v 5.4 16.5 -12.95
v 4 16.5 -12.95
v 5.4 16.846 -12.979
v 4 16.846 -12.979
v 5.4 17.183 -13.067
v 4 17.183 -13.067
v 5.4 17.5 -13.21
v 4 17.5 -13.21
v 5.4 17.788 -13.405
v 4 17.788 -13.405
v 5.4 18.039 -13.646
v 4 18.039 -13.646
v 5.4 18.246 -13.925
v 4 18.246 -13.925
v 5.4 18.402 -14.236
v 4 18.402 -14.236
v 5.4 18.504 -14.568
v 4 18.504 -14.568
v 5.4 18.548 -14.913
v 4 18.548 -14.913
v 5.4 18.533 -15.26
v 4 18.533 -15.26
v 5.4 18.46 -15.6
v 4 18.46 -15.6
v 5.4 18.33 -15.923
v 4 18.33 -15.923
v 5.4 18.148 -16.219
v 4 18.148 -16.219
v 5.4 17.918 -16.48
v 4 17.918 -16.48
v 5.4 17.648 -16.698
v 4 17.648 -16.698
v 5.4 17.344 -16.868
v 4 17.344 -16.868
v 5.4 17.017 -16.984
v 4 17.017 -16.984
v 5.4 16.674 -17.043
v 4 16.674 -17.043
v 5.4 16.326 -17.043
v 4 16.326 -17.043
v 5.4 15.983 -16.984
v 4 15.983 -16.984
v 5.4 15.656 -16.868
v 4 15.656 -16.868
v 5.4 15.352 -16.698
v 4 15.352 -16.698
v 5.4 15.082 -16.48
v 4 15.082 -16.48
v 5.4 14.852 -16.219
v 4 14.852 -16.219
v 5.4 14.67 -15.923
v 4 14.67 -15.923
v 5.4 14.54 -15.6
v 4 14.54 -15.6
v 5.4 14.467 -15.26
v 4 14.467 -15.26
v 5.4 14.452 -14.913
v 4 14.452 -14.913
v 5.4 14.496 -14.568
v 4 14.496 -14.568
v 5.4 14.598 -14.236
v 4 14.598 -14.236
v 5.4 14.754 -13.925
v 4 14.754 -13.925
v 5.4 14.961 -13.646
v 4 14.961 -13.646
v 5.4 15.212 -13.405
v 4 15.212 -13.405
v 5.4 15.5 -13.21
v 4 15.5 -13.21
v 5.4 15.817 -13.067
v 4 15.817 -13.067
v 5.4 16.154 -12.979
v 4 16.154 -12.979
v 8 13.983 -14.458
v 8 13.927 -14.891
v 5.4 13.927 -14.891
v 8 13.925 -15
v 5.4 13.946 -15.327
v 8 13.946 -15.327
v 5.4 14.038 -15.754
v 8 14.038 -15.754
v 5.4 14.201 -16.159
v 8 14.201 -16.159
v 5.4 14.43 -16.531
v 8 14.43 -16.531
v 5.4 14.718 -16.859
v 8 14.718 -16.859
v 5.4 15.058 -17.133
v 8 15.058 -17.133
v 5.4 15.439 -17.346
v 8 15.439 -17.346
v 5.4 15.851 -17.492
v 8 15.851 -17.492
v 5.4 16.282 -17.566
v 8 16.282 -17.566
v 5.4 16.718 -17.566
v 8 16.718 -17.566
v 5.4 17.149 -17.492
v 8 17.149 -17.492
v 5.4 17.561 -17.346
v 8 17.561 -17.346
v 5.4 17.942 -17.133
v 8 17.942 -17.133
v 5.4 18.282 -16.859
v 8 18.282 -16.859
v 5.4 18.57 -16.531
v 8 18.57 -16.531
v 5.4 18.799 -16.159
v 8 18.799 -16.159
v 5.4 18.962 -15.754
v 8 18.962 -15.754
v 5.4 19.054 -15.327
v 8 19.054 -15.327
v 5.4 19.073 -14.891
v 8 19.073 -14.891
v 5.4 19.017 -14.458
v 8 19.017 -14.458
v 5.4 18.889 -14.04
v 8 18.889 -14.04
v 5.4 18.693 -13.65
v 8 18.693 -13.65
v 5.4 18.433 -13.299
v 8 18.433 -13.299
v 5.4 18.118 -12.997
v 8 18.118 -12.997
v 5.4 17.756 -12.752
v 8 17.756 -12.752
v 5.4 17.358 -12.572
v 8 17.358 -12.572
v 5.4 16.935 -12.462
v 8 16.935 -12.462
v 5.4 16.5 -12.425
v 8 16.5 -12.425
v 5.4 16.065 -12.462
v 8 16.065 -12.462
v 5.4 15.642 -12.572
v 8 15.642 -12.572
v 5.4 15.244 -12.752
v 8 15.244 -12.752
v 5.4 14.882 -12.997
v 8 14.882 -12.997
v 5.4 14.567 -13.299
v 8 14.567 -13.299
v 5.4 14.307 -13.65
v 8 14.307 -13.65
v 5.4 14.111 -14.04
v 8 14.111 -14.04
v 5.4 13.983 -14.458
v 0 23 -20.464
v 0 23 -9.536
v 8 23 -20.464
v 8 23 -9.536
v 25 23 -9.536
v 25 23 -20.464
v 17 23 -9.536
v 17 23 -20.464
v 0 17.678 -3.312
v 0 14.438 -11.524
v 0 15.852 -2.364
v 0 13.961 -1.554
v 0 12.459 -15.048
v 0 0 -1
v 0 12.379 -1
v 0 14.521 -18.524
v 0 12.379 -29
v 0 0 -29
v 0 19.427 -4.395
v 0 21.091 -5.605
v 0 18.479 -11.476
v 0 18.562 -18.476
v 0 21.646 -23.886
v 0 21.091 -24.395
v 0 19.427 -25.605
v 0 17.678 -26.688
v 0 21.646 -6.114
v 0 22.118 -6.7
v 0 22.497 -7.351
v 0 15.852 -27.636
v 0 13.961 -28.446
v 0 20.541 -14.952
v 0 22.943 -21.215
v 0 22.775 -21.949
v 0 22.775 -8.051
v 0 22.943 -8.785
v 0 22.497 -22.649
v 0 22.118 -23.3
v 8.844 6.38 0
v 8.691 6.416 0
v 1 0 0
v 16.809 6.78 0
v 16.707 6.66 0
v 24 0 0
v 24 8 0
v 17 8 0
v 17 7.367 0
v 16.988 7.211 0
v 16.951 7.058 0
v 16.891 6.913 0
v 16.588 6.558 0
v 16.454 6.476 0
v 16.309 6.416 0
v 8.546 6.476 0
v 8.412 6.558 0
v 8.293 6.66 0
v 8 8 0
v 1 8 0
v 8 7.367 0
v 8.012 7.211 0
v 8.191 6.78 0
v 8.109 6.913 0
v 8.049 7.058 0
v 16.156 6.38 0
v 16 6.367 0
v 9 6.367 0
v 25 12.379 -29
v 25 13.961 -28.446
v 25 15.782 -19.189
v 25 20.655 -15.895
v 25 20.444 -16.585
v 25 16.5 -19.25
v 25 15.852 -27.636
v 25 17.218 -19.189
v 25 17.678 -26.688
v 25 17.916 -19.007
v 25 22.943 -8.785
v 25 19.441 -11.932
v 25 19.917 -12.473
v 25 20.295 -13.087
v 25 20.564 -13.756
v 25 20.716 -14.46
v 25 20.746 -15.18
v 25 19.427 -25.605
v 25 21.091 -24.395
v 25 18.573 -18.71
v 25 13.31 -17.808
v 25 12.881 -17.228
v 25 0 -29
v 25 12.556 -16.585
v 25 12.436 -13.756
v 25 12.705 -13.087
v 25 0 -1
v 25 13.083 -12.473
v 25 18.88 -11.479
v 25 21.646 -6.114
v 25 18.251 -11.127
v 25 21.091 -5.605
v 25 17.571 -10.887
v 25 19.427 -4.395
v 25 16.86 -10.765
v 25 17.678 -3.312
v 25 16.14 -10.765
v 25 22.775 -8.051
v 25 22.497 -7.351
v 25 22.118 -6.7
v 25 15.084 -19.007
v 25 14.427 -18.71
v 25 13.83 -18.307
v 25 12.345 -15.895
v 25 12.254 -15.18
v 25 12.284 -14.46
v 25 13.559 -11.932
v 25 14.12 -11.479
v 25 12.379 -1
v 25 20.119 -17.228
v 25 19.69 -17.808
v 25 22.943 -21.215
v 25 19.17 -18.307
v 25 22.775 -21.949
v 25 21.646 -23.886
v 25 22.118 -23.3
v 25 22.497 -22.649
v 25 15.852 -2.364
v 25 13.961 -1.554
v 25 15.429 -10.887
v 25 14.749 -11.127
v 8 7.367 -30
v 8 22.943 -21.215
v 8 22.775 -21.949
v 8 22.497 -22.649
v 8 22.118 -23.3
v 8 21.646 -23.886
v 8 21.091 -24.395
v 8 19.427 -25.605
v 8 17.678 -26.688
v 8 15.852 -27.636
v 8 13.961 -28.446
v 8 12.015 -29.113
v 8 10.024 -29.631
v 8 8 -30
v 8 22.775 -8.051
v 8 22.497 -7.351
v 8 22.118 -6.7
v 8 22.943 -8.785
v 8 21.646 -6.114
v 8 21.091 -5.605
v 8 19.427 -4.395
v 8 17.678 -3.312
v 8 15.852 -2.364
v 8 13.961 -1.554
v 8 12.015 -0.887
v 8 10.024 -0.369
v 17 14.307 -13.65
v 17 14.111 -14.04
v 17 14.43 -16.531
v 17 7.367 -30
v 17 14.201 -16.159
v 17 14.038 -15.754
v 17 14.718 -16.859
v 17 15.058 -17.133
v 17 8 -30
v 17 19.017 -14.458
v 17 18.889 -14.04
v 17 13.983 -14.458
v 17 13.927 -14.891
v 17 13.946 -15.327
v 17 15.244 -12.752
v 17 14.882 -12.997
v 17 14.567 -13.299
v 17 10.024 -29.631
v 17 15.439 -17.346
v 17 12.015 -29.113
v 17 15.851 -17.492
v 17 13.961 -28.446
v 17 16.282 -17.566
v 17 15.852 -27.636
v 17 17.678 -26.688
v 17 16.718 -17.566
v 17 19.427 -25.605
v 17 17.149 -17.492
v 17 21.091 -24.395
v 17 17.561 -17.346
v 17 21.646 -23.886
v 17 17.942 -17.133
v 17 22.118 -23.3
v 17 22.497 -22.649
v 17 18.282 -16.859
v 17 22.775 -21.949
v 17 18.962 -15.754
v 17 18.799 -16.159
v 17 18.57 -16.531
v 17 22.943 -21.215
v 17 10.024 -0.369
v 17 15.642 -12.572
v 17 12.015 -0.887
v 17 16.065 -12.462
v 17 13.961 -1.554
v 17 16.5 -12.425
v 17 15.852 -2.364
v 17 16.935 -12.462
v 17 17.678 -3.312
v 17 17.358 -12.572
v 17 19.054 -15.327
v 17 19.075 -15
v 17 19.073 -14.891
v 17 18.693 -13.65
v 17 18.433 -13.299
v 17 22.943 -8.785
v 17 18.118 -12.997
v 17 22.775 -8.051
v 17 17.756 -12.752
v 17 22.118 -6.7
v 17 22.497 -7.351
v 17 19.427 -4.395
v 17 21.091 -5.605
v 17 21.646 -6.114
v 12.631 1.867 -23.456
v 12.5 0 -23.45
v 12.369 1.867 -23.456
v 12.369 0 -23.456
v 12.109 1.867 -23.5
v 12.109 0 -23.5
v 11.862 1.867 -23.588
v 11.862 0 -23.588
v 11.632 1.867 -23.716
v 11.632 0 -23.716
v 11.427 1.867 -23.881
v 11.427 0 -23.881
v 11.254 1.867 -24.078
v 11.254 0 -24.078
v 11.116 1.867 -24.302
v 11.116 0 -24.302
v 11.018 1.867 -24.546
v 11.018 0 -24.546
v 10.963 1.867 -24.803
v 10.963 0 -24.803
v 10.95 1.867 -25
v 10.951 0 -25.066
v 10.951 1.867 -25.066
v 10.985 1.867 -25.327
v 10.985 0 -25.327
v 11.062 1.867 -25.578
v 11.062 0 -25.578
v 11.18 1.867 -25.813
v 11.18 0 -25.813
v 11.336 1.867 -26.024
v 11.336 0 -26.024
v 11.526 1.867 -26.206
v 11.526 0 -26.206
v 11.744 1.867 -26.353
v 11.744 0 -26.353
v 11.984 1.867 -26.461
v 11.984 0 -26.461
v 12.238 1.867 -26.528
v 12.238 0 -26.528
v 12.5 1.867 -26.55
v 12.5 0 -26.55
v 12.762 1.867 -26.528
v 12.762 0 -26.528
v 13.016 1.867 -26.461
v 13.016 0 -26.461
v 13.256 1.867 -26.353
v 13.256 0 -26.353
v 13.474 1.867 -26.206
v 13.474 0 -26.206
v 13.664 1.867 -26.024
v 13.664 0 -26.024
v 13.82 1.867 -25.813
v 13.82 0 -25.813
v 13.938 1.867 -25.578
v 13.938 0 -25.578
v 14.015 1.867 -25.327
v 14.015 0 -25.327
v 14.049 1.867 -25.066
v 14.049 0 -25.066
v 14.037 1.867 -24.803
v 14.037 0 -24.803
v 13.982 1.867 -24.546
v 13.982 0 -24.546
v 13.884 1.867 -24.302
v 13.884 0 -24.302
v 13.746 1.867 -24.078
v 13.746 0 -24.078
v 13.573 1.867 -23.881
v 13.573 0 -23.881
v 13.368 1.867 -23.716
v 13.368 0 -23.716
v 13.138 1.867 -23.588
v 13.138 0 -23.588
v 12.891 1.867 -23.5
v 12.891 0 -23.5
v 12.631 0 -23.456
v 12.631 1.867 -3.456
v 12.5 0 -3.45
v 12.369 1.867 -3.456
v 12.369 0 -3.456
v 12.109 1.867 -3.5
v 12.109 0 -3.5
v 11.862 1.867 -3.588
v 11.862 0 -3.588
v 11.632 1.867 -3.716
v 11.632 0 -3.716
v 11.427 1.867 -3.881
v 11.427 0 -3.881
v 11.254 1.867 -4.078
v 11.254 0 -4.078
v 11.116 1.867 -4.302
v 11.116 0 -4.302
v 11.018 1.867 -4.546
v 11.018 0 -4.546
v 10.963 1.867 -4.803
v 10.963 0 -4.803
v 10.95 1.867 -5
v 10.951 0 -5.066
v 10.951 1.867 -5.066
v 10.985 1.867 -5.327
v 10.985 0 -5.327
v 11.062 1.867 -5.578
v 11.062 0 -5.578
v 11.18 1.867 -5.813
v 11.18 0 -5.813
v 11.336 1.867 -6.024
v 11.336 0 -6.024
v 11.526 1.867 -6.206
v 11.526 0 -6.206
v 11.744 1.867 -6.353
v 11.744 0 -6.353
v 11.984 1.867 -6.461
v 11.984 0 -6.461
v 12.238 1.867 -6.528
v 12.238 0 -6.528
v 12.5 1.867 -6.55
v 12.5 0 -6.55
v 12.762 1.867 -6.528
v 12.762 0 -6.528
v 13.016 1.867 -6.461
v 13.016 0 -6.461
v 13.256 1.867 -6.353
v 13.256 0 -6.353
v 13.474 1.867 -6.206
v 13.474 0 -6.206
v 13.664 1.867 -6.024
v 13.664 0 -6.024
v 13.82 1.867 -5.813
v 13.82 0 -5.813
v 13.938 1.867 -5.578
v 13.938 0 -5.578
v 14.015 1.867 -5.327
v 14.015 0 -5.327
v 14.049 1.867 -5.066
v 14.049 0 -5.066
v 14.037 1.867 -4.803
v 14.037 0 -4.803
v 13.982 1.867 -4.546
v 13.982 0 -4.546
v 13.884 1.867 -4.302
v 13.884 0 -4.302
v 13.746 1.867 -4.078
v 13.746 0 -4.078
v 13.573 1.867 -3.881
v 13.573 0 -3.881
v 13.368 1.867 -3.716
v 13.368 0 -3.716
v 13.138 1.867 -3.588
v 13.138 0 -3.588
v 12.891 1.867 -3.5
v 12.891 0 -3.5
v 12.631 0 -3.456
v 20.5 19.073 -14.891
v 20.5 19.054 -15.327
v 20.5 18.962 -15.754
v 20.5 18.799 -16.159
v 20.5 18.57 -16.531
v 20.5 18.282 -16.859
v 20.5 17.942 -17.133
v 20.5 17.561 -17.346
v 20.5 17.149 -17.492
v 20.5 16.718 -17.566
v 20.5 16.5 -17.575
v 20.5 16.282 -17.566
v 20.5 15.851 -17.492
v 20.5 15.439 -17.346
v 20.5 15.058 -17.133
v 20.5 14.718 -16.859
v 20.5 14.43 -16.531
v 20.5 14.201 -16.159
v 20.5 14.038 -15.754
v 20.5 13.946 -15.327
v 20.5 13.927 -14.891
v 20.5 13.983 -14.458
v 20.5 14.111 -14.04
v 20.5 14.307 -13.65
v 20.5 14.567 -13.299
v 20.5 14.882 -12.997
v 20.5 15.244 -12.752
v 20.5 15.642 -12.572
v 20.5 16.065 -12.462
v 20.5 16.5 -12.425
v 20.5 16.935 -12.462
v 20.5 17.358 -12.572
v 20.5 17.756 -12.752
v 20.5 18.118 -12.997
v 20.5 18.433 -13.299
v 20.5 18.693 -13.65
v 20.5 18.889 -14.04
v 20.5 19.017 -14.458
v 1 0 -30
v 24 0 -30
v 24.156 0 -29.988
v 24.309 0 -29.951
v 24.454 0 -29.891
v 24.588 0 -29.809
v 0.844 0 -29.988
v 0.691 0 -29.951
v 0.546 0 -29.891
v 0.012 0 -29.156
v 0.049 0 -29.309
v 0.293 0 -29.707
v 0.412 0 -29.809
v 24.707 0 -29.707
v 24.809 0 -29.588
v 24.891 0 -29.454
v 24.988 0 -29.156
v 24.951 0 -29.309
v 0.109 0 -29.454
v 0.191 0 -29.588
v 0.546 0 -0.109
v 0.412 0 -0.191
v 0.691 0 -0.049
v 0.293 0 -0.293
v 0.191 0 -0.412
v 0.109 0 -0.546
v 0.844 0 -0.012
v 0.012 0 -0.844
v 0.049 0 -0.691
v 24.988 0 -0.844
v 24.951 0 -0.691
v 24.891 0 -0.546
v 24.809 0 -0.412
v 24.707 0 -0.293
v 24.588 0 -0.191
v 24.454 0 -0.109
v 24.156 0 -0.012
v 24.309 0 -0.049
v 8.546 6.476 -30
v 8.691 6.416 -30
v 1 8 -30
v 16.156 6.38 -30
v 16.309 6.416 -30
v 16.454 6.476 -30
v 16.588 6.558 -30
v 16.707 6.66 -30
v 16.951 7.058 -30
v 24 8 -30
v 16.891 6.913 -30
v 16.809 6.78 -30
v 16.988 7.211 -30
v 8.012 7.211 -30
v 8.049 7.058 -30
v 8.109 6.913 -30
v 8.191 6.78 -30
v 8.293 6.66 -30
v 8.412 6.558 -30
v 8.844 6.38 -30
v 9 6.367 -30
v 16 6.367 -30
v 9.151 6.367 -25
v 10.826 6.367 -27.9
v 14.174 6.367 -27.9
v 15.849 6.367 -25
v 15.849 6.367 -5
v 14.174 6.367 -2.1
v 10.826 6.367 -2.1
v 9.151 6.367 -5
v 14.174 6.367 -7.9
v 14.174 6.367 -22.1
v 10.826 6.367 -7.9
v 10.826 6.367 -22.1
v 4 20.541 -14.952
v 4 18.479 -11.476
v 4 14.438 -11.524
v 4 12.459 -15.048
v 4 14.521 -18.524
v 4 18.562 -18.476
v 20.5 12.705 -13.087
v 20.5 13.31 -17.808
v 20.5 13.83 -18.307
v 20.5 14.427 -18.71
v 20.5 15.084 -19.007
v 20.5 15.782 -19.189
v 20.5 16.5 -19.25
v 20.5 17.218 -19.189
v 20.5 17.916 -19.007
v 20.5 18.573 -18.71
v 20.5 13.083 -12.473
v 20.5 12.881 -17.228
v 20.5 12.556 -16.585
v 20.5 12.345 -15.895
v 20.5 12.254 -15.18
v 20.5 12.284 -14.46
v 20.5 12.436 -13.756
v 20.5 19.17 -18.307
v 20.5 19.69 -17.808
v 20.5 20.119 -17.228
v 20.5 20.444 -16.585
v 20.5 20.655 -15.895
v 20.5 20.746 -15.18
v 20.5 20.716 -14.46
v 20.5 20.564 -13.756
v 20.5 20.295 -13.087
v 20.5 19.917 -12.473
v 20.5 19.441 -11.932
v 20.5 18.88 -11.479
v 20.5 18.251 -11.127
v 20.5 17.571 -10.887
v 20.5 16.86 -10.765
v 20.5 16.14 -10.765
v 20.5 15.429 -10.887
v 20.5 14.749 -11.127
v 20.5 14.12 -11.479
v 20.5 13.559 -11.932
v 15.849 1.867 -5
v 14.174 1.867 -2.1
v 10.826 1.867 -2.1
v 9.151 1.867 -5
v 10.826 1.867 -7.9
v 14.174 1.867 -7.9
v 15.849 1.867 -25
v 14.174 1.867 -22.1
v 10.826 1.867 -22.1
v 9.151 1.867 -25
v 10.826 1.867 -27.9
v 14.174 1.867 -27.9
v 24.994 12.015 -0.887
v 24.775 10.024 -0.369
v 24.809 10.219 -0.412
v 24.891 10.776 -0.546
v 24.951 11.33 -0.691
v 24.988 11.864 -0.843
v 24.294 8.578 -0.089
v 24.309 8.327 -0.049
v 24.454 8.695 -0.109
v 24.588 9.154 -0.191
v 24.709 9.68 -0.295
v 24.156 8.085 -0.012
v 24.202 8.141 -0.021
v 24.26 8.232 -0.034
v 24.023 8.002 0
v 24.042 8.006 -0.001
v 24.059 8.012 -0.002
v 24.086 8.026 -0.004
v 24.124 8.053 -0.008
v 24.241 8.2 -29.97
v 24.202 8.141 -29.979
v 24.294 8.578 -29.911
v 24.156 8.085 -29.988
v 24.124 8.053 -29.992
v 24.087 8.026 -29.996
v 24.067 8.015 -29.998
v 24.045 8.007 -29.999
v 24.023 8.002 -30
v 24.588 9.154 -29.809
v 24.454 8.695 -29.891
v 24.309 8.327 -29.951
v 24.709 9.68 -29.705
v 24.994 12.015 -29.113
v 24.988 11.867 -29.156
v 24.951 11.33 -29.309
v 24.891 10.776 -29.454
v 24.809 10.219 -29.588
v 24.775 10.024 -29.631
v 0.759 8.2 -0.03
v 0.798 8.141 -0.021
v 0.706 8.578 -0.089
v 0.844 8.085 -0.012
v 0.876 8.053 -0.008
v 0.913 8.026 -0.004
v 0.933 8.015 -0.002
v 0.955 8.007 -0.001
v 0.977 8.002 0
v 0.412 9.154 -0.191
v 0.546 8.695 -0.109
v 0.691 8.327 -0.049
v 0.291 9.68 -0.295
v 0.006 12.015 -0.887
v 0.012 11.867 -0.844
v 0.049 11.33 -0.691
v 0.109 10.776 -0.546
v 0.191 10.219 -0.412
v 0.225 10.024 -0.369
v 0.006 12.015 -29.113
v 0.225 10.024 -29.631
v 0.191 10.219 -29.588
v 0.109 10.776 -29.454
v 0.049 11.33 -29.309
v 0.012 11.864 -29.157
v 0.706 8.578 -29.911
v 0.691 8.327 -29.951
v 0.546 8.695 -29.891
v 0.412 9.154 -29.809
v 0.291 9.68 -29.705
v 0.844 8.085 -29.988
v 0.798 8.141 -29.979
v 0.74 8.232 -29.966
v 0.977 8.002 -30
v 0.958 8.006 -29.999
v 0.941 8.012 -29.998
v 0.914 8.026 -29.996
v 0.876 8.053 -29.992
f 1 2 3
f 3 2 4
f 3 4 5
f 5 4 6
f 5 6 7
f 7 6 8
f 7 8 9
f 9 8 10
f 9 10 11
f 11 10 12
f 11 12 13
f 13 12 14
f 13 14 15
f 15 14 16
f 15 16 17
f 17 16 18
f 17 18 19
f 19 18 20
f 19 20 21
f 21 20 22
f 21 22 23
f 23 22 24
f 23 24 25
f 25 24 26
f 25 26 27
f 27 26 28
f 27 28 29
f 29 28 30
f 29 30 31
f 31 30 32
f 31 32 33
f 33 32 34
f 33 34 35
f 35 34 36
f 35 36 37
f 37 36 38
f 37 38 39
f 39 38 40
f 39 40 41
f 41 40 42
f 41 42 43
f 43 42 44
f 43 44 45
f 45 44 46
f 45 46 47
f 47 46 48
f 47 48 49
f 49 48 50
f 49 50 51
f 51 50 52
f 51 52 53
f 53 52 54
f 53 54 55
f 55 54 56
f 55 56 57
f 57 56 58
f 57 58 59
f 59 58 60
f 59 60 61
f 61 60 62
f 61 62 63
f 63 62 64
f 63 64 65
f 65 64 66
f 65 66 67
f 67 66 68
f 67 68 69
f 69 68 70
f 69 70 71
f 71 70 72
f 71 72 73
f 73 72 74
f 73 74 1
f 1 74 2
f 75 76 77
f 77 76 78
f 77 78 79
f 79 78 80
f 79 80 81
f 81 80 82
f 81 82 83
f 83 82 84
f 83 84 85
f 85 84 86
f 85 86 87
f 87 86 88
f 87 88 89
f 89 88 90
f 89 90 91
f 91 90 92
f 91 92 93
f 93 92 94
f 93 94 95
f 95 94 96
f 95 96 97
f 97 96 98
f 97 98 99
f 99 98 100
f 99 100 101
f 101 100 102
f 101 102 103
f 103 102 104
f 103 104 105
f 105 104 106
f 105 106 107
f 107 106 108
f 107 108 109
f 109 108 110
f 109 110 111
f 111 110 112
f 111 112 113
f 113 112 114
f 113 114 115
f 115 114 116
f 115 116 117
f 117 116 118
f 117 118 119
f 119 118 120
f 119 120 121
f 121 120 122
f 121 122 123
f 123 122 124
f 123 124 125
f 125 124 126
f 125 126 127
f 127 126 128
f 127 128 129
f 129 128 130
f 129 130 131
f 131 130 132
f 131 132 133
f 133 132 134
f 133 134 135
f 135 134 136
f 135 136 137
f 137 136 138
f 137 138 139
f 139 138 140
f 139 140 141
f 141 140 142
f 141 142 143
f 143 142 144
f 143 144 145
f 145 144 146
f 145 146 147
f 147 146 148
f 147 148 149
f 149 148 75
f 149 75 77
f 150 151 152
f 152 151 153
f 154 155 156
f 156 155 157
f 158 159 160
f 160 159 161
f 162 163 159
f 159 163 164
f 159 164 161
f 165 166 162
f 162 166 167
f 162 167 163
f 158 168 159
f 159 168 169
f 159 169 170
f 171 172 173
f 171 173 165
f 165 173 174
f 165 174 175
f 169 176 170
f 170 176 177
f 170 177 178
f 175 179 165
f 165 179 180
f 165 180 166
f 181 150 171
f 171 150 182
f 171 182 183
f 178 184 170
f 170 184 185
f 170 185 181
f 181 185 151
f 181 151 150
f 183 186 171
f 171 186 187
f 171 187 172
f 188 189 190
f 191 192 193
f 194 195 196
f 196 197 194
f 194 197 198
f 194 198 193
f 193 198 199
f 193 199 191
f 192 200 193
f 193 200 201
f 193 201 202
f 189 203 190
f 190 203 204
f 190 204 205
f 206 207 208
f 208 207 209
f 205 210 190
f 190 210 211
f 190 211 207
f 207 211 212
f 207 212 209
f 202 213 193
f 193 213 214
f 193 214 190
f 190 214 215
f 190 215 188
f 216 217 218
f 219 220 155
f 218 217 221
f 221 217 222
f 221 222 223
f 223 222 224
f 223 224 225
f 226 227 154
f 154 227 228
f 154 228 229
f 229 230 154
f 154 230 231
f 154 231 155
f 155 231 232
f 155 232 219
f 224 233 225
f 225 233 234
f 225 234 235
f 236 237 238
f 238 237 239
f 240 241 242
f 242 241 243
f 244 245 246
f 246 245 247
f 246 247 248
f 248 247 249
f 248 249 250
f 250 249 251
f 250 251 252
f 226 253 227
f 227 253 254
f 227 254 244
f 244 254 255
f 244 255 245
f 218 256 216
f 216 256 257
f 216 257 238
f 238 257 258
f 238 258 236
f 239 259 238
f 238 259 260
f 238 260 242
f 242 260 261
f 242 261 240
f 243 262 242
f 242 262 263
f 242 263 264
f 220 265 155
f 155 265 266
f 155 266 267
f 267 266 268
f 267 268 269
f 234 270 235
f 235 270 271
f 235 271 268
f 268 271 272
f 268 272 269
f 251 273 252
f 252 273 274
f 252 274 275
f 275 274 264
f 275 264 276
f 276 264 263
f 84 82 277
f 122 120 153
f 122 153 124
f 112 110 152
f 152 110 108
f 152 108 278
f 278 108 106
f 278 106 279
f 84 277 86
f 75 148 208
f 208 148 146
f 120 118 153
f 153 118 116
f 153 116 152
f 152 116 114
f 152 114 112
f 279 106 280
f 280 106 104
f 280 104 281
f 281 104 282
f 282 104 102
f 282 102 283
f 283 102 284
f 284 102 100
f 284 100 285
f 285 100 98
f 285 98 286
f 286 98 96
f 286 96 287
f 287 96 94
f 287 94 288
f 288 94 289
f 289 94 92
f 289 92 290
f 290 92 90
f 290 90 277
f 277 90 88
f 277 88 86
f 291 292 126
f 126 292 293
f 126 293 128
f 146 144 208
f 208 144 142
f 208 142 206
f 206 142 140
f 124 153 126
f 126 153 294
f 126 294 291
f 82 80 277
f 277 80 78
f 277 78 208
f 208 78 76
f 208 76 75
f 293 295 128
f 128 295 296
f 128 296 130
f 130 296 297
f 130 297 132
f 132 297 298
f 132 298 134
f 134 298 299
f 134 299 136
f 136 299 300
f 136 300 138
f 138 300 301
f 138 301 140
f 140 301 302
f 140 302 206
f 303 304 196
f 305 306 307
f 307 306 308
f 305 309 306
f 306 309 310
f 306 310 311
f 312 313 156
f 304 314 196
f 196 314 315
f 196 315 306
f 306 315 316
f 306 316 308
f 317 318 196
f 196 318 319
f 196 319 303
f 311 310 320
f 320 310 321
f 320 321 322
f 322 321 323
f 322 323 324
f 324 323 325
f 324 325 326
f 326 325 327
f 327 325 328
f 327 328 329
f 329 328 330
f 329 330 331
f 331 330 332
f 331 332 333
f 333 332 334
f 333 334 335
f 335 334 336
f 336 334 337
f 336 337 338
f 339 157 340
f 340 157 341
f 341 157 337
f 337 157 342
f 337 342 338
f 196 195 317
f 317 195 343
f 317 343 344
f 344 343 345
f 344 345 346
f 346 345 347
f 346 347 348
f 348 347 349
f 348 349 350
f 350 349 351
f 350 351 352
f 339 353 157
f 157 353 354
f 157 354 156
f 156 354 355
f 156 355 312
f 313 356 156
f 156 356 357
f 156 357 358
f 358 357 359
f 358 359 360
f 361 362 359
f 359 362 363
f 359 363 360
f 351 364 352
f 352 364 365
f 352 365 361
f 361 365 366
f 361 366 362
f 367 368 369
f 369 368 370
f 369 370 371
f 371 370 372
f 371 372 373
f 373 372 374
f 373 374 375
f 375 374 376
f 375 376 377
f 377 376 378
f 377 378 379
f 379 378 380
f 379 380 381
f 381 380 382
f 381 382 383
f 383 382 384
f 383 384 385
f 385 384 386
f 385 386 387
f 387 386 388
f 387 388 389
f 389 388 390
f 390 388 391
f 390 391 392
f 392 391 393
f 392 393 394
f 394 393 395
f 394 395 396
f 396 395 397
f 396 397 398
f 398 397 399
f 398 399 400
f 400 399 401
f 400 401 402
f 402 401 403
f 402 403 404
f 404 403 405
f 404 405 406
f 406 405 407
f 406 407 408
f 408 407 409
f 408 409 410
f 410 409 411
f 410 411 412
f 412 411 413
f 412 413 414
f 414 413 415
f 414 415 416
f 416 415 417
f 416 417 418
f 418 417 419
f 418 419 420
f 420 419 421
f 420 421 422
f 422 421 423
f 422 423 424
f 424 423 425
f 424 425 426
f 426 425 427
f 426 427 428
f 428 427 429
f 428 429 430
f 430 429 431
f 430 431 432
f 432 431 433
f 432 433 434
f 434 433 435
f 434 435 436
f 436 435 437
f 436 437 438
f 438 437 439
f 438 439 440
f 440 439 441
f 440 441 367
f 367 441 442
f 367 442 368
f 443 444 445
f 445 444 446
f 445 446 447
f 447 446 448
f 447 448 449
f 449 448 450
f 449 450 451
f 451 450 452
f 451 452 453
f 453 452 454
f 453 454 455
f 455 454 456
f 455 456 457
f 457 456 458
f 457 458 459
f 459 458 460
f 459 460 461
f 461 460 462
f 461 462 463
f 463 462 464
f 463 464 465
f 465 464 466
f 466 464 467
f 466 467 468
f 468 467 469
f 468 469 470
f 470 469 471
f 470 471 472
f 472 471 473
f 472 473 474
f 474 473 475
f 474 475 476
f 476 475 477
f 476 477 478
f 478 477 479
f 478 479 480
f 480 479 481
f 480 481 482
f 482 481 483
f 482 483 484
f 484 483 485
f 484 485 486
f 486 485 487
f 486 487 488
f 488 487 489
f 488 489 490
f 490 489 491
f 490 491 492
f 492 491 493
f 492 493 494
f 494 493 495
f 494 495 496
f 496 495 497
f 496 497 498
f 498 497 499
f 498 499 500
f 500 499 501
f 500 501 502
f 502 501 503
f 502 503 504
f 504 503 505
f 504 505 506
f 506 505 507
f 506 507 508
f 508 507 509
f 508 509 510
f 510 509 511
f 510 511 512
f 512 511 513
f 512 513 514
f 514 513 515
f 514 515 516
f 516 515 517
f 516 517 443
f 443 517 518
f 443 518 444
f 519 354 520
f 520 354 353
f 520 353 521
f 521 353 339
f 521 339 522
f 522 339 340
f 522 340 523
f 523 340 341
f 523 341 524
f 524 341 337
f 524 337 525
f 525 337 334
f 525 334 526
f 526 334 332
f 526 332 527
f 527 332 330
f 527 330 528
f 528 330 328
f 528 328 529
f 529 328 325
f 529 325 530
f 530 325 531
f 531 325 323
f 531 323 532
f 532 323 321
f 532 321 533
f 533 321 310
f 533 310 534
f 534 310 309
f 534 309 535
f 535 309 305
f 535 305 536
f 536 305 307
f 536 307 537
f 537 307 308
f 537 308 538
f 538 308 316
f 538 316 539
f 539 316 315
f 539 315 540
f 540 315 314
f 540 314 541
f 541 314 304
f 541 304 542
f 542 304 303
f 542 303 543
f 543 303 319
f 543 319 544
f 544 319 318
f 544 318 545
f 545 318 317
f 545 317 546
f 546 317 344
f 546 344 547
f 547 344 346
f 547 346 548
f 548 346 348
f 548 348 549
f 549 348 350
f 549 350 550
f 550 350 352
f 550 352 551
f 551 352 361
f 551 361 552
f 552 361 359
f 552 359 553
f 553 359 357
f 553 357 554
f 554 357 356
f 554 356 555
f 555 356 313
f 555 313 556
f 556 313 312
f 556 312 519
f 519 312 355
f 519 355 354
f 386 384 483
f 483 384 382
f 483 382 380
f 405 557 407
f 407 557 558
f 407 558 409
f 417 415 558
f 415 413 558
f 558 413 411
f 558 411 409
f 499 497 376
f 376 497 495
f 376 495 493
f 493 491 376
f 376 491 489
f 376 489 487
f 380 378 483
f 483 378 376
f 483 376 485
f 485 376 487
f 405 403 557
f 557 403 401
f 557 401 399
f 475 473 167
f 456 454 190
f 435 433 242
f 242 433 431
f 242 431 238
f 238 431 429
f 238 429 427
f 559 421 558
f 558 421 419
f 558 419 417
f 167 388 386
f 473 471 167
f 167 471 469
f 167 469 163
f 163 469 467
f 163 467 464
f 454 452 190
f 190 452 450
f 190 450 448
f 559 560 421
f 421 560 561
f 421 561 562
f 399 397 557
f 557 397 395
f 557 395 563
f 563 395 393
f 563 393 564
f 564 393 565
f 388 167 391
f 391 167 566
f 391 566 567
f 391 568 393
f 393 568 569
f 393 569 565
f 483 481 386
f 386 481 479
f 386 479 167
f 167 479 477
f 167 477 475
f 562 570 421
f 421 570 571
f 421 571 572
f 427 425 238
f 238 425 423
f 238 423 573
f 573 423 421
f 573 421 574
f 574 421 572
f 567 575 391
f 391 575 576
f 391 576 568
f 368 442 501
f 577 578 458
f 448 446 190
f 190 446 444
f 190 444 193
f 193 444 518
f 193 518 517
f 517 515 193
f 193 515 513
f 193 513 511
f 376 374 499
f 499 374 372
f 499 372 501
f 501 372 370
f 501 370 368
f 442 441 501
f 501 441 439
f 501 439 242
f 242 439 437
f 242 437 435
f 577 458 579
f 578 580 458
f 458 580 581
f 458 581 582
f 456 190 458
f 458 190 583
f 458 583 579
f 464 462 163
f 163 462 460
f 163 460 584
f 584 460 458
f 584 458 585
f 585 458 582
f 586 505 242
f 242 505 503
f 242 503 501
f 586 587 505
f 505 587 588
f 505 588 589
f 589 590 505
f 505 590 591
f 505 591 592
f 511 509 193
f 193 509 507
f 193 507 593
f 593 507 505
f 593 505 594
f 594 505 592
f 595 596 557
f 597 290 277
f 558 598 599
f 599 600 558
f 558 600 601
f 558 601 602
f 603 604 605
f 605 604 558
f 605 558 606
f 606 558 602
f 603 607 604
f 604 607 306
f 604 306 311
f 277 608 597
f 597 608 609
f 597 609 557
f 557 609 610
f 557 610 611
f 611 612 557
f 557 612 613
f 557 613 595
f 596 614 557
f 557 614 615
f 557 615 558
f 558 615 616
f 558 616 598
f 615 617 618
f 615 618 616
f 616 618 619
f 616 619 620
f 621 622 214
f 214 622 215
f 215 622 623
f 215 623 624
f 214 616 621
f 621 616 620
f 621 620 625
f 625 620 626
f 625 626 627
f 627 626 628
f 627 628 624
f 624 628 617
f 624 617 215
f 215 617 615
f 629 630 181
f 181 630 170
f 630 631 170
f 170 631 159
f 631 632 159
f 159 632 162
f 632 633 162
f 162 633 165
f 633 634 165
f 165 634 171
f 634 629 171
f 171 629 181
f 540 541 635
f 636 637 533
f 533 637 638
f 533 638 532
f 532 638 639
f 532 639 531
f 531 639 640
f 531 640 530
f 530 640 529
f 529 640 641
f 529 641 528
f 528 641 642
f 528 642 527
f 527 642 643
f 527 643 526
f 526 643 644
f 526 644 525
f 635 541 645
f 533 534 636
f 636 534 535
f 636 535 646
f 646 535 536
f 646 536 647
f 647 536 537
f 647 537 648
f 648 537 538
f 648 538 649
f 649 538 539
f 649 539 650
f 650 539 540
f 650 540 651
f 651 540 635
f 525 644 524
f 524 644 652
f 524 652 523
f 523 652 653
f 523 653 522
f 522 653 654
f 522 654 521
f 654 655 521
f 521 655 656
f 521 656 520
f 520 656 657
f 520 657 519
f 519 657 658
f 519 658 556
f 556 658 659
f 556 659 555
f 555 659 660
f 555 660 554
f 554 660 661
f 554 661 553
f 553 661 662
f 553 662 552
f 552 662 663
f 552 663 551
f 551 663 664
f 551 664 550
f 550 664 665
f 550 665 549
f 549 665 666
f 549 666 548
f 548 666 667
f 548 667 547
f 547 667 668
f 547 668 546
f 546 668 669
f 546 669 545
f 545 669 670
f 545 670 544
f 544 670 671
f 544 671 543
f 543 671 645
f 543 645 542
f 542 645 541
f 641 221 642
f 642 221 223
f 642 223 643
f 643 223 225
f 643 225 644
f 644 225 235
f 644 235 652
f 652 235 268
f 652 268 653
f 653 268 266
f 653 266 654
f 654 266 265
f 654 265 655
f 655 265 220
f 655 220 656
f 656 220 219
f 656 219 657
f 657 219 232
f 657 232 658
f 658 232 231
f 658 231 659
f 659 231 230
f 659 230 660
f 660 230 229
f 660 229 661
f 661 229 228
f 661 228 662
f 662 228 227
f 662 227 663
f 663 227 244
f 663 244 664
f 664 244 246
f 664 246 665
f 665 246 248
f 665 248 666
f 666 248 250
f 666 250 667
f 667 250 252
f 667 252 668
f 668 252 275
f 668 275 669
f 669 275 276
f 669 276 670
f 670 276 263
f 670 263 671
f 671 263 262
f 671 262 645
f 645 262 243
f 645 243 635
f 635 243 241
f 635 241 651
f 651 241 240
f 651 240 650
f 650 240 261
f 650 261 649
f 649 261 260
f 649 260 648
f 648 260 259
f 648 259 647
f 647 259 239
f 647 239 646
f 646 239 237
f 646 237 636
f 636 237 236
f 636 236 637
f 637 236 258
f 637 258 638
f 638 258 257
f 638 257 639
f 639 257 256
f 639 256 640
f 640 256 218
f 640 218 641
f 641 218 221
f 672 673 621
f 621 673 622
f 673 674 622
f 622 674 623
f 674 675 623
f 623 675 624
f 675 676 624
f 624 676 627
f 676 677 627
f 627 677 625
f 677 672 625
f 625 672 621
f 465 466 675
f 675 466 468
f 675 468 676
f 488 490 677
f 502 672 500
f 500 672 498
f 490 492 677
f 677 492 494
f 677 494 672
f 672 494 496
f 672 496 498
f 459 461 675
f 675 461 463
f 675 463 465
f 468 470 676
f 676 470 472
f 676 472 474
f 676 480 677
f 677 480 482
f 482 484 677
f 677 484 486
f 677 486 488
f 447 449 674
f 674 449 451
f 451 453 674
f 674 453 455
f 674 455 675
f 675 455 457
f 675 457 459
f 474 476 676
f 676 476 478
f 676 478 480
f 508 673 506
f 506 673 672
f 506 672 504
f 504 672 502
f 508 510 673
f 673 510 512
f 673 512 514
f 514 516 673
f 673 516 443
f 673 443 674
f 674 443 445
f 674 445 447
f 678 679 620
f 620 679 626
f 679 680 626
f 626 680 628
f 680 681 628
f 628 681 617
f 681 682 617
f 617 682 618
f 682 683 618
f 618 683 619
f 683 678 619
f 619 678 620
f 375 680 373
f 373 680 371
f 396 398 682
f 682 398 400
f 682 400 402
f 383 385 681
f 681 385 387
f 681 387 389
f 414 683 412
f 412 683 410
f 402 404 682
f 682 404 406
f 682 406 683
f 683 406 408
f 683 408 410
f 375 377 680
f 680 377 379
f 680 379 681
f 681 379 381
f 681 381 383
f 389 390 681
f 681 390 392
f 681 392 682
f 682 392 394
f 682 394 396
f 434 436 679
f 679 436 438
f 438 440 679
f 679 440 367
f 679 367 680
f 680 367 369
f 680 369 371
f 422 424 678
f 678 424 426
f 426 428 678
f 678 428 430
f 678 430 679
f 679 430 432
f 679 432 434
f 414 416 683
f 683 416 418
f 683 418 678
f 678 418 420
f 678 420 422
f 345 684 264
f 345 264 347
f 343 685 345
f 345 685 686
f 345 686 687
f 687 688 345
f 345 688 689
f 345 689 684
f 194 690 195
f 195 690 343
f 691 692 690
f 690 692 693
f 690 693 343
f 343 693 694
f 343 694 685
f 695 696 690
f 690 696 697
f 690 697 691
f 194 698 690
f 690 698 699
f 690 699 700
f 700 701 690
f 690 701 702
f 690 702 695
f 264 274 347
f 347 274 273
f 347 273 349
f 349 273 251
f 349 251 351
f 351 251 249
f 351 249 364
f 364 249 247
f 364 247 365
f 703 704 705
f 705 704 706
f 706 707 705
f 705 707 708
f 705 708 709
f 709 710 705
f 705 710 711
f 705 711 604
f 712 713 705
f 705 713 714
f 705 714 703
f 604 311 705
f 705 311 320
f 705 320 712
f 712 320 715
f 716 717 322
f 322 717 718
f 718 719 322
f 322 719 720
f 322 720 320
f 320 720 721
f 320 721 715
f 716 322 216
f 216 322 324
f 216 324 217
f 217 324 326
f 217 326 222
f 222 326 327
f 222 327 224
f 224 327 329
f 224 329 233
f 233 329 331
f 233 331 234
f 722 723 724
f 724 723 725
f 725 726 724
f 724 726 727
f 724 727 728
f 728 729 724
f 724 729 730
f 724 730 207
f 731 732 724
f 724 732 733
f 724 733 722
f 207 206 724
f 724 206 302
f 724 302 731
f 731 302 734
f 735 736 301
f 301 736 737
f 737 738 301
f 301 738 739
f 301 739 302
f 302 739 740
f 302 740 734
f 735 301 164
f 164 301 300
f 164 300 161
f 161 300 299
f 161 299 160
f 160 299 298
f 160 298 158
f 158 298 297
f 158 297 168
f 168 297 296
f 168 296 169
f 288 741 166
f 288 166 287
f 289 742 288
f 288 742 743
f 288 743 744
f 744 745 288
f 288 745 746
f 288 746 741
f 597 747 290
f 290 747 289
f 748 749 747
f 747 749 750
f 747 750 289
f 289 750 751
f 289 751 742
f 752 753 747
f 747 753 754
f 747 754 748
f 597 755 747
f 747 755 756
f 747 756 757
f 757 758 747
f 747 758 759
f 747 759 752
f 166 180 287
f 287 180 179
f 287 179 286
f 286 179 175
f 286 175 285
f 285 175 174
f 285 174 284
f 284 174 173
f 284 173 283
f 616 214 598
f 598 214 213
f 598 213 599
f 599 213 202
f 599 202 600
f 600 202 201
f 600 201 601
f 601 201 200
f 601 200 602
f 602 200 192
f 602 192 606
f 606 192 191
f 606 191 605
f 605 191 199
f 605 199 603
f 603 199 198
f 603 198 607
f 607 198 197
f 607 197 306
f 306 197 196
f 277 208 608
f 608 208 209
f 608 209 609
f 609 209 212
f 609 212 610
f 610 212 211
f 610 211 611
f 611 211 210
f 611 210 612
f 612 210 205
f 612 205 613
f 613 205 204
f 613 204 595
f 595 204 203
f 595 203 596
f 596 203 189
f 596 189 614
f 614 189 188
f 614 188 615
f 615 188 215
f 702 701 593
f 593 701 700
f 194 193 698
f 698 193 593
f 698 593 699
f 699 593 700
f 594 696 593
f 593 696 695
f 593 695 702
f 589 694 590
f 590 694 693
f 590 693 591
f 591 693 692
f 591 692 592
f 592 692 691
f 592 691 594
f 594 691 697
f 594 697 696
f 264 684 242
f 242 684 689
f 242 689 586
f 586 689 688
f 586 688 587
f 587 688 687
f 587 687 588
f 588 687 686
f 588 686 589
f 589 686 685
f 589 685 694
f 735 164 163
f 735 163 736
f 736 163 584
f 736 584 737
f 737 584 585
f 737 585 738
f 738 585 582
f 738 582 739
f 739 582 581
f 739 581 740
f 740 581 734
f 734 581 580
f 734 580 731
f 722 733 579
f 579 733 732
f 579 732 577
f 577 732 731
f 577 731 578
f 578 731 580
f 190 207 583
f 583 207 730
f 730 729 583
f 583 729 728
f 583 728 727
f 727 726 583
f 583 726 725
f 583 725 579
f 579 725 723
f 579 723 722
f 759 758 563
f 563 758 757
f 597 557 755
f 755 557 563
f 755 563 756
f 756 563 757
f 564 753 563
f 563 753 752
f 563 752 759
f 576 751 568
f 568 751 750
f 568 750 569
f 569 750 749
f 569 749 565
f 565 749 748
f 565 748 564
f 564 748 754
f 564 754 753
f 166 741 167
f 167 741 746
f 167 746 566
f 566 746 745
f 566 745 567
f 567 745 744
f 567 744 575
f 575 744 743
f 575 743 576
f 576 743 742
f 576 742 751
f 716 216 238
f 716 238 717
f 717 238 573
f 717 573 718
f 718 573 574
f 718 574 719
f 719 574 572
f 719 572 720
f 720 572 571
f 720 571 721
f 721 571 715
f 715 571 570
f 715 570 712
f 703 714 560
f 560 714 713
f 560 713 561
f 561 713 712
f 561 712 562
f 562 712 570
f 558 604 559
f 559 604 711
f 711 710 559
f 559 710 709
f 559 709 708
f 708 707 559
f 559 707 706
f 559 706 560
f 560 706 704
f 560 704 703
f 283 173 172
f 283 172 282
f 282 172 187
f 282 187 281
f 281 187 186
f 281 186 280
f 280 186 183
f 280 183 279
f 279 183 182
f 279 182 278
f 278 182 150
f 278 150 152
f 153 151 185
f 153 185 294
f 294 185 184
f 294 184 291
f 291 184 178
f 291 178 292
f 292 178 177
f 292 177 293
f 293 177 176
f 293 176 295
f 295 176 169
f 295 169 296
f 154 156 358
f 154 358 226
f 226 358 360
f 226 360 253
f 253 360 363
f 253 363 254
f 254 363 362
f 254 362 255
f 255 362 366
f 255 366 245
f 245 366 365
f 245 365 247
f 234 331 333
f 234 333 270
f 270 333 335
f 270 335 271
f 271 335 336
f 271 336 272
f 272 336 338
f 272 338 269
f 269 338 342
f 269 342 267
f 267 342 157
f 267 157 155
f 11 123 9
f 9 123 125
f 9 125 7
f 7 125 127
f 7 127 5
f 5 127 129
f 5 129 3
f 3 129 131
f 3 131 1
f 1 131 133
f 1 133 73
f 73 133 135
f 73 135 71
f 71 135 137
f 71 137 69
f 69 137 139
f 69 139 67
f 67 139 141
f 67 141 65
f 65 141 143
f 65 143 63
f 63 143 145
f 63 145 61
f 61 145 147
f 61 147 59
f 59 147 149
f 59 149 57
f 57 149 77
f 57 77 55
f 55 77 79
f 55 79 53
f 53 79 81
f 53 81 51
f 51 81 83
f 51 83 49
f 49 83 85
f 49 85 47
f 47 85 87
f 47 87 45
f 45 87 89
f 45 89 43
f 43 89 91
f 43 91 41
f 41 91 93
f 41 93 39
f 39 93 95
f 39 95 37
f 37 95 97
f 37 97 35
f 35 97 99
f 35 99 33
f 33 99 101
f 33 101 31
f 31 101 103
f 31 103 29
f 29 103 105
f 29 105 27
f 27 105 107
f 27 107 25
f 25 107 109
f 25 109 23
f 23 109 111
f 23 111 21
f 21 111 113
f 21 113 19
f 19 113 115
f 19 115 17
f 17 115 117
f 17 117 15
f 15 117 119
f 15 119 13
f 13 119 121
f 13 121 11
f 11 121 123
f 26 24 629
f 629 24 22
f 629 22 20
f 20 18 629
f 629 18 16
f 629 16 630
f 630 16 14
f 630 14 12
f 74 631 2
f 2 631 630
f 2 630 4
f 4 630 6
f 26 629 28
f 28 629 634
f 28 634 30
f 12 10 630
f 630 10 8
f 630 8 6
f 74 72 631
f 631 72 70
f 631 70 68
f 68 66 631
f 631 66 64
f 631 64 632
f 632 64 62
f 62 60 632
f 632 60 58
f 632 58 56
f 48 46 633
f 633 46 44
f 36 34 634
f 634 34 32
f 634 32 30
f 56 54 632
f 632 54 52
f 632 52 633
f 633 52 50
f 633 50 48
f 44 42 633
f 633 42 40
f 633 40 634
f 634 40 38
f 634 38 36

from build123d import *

# Parameters (mm, degrees)
CROQUIS1_W              = 25
CROQUIS1_H              = 30
CROQUIS1_R              = 1.55
SALIENTE_EXTRUIR1_DEPTH = 23
CROQUIS2_W              = 9
CROQUIS2_H              = 16.632666969
CORTAR_EXTRUIR1_DEPTH   = 30
CROQUIS3_R              = 2.575
CORTAR_EXTRUIR2_DEPTH   = 25
CORTAR_EXTRUIR3_DEPTH   = 2.5
CROQUIS5_R              = 4.25
CORTAR_EXTRUIR4_DEPTH   = 4.5
CORTAR_EXTRUIR5_DEPTH   = 4.5
CORTAR_EXTRUIR6_DEPTH   = 25
REDONDEO2_R             = 1
REDONDEO3_R             = 1
REDONDEO4_R             = 5
CROQUIS8_R              = 2.575
CROQUIS8_R_2            = 2.05
SALIENTE_EXTRUIR2_DEPTH = 2.9
CORTAR_EXTRUIR7_DEPTH   = 1.5


with BuildPart() as part:
    # Croquis1 → Saliente-Extruir1 (new body)
    with BuildSketch(Plane(origin=(0, 0, 0), x_dir=(1, 0, 0), z_dir=(0, 1, 0))):
        with Locations((12.5, 15)):
            Rectangle(CROQUIS1_W, CROQUIS1_H)
        with Locations((12.5, 25)):
            Circle(CROQUIS1_R, mode=Mode.SUBTRACT)
        with Locations((12.5, 5)):
            Circle(CROQUIS1_R, mode=Mode.SUBTRACT)
    extrude(amount=SALIENTE_EXTRUIR1_DEPTH)

    # Croquis2 → Cortar-Extruir1 (cut)
    with BuildSketch(Plane(origin=(0, 0, -30), x_dir=(-1, 0, 0), z_dir=(0, 0, -1))):
        with Locations((-12.5, 14.683666516)):
            Rectangle(CROQUIS2_W, CROQUIS2_H)
    extrude(amount=-CORTAR_EXTRUIR1_DEPTH, mode=Mode.SUBTRACT)

    # Croquis3 → Cortar-Extruir2 (cut)
    with BuildSketch(Plane.ZY):
        with Locations((-15, 16.5)):
            Circle(CROQUIS3_R)
    extrude(amount=-CORTAR_EXTRUIR2_DEPTH, mode=Mode.SUBTRACT)

    # Croquis4 → Cortar-Extruir3 (cut)
    with BuildSketch(Plane.ZY):
        Polygon((-14.95180736, 20.541164535), (-18.475654829, 18.562318318), (-18.523847469, 14.521153783), (-15.04819264, 12.458835465), (-11.524345171, 14.437681682), (-11.476152531, 18.478846217), align=None)
    extrude(amount=-CORTAR_EXTRUIR3_DEPTH, mode=Mode.SUBTRACT)

    # Croquis5 → Cortar-Extruir4 (cut)
    with BuildSketch(Plane(origin=(25, 0, 0), x_dir=(0, 0, -1), z_dir=(1, 0, 0))):
        with Locations((15, 16.5)):
            Circle(CROQUIS5_R)
    extrude(amount=-CORTAR_EXTRUIR4_DEPTH, mode=Mode.SUBTRACT)

    # Croquis6 → Cortar-Extruir5 (cut)
    with BuildSketch(Plane(origin=(0, 6.367333031, 0), x_dir=(1, 0, 0), z_dir=(0, 1, 0))):
        Polygon((15.848631561, 25), (14.174315781, 27.9), (10.825684219, 27.9), (9.151368439, 25), (10.825684219, 22.1), (14.174315781, 22.1), align=None)
        Polygon((15.848631561, 5), (14.174315781, 7.9), (10.825684219, 7.9), (9.151368439, 5), (10.825684219, 2.1), (14.174315781, 2.1), align=None)
    extrude(amount=-CORTAR_EXTRUIR5_DEPTH, mode=Mode.SUBTRACT)

    # Croquis7 → Cortar-Extruir6 (cut)
    with BuildSketch(Plane.ZY):
        with BuildLine():
            Line((-22.745966692, 23), (-30, 23))
            Line((-30, 23), (-30, 8))
            ThreePointArc((-30, 8), (-27.536048339, 16.062460813), (-22.745966692, 23))
        make_face()
        with BuildLine():
            Line((0, 23), (-7.254033308, 23))
            ThreePointArc((-7.254033308, 23), (-2.463951661, 16.062460813), (0, 8))
            Line((0, 8), (0, 23))
        make_face()
    extrude(amount=-CORTAR_EXTRUIR6_DEPTH, mode=Mode.SUBTRACT)

    # Redondeo2
    redondeo2_edges = [part.edges().sort_by_distance(p)[0] for p in [
        (8, 6.367333031, -15),
        (17, 6.367333031, -15),
    ]]
    fillet(redondeo2_edges, radius=REDONDEO2_R)

    # Redondeo3
    redondeo3_edges = [part.edges().sort_by_distance(p)[0] for p in [
        (25, 4, -30),
        (0, 4, -30),
        (25, 4, 0),
        (0, 4, 0),
    ]]
    fillet(redondeo3_edges, radius=REDONDEO3_R)

    # Redondeo4
    redondeo4_edges = [part.edges().sort_by_distance(p)[0] for p in [
        (4, 23, -22.745966692),
        (21, 23, -22.745966692),
        (4, 23, -7.254033308),
        (21, 23, -7.254033308),
    ]]
    fillet(redondeo4_edges, radius=REDONDEO4_R)

    # Croquis8 → Saliente-Extruir2 (add)
    with BuildSketch(Plane.ZY.offset(-2.5)):
        with Locations((-15, 16.5)):
            Circle(CROQUIS8_R)
        with Locations((-15, 16.5)):
            Circle(CROQUIS8_R_2, mode=Mode.SUBTRACT)
    extrude(amount=-SALIENTE_EXTRUIR2_DEPTH)

    # Croquis9 → Cortar-Extruir7 (cut)
    with BuildSketch(Plane.ZY.offset(-2.5)):
        Polygon((-11.476152531, 18.478846217), (-14.95180736, 20.541164535), (-18.475654829, 18.562318318), (-18.523847469, 14.521153783), (-15.04819264, 12.458835465), (-11.524345171, 14.437681682), align=None)
    extrude(amount=-CORTAR_EXTRUIR7_DEPTH, mode=Mode.SUBTRACT)


solid = part.part
